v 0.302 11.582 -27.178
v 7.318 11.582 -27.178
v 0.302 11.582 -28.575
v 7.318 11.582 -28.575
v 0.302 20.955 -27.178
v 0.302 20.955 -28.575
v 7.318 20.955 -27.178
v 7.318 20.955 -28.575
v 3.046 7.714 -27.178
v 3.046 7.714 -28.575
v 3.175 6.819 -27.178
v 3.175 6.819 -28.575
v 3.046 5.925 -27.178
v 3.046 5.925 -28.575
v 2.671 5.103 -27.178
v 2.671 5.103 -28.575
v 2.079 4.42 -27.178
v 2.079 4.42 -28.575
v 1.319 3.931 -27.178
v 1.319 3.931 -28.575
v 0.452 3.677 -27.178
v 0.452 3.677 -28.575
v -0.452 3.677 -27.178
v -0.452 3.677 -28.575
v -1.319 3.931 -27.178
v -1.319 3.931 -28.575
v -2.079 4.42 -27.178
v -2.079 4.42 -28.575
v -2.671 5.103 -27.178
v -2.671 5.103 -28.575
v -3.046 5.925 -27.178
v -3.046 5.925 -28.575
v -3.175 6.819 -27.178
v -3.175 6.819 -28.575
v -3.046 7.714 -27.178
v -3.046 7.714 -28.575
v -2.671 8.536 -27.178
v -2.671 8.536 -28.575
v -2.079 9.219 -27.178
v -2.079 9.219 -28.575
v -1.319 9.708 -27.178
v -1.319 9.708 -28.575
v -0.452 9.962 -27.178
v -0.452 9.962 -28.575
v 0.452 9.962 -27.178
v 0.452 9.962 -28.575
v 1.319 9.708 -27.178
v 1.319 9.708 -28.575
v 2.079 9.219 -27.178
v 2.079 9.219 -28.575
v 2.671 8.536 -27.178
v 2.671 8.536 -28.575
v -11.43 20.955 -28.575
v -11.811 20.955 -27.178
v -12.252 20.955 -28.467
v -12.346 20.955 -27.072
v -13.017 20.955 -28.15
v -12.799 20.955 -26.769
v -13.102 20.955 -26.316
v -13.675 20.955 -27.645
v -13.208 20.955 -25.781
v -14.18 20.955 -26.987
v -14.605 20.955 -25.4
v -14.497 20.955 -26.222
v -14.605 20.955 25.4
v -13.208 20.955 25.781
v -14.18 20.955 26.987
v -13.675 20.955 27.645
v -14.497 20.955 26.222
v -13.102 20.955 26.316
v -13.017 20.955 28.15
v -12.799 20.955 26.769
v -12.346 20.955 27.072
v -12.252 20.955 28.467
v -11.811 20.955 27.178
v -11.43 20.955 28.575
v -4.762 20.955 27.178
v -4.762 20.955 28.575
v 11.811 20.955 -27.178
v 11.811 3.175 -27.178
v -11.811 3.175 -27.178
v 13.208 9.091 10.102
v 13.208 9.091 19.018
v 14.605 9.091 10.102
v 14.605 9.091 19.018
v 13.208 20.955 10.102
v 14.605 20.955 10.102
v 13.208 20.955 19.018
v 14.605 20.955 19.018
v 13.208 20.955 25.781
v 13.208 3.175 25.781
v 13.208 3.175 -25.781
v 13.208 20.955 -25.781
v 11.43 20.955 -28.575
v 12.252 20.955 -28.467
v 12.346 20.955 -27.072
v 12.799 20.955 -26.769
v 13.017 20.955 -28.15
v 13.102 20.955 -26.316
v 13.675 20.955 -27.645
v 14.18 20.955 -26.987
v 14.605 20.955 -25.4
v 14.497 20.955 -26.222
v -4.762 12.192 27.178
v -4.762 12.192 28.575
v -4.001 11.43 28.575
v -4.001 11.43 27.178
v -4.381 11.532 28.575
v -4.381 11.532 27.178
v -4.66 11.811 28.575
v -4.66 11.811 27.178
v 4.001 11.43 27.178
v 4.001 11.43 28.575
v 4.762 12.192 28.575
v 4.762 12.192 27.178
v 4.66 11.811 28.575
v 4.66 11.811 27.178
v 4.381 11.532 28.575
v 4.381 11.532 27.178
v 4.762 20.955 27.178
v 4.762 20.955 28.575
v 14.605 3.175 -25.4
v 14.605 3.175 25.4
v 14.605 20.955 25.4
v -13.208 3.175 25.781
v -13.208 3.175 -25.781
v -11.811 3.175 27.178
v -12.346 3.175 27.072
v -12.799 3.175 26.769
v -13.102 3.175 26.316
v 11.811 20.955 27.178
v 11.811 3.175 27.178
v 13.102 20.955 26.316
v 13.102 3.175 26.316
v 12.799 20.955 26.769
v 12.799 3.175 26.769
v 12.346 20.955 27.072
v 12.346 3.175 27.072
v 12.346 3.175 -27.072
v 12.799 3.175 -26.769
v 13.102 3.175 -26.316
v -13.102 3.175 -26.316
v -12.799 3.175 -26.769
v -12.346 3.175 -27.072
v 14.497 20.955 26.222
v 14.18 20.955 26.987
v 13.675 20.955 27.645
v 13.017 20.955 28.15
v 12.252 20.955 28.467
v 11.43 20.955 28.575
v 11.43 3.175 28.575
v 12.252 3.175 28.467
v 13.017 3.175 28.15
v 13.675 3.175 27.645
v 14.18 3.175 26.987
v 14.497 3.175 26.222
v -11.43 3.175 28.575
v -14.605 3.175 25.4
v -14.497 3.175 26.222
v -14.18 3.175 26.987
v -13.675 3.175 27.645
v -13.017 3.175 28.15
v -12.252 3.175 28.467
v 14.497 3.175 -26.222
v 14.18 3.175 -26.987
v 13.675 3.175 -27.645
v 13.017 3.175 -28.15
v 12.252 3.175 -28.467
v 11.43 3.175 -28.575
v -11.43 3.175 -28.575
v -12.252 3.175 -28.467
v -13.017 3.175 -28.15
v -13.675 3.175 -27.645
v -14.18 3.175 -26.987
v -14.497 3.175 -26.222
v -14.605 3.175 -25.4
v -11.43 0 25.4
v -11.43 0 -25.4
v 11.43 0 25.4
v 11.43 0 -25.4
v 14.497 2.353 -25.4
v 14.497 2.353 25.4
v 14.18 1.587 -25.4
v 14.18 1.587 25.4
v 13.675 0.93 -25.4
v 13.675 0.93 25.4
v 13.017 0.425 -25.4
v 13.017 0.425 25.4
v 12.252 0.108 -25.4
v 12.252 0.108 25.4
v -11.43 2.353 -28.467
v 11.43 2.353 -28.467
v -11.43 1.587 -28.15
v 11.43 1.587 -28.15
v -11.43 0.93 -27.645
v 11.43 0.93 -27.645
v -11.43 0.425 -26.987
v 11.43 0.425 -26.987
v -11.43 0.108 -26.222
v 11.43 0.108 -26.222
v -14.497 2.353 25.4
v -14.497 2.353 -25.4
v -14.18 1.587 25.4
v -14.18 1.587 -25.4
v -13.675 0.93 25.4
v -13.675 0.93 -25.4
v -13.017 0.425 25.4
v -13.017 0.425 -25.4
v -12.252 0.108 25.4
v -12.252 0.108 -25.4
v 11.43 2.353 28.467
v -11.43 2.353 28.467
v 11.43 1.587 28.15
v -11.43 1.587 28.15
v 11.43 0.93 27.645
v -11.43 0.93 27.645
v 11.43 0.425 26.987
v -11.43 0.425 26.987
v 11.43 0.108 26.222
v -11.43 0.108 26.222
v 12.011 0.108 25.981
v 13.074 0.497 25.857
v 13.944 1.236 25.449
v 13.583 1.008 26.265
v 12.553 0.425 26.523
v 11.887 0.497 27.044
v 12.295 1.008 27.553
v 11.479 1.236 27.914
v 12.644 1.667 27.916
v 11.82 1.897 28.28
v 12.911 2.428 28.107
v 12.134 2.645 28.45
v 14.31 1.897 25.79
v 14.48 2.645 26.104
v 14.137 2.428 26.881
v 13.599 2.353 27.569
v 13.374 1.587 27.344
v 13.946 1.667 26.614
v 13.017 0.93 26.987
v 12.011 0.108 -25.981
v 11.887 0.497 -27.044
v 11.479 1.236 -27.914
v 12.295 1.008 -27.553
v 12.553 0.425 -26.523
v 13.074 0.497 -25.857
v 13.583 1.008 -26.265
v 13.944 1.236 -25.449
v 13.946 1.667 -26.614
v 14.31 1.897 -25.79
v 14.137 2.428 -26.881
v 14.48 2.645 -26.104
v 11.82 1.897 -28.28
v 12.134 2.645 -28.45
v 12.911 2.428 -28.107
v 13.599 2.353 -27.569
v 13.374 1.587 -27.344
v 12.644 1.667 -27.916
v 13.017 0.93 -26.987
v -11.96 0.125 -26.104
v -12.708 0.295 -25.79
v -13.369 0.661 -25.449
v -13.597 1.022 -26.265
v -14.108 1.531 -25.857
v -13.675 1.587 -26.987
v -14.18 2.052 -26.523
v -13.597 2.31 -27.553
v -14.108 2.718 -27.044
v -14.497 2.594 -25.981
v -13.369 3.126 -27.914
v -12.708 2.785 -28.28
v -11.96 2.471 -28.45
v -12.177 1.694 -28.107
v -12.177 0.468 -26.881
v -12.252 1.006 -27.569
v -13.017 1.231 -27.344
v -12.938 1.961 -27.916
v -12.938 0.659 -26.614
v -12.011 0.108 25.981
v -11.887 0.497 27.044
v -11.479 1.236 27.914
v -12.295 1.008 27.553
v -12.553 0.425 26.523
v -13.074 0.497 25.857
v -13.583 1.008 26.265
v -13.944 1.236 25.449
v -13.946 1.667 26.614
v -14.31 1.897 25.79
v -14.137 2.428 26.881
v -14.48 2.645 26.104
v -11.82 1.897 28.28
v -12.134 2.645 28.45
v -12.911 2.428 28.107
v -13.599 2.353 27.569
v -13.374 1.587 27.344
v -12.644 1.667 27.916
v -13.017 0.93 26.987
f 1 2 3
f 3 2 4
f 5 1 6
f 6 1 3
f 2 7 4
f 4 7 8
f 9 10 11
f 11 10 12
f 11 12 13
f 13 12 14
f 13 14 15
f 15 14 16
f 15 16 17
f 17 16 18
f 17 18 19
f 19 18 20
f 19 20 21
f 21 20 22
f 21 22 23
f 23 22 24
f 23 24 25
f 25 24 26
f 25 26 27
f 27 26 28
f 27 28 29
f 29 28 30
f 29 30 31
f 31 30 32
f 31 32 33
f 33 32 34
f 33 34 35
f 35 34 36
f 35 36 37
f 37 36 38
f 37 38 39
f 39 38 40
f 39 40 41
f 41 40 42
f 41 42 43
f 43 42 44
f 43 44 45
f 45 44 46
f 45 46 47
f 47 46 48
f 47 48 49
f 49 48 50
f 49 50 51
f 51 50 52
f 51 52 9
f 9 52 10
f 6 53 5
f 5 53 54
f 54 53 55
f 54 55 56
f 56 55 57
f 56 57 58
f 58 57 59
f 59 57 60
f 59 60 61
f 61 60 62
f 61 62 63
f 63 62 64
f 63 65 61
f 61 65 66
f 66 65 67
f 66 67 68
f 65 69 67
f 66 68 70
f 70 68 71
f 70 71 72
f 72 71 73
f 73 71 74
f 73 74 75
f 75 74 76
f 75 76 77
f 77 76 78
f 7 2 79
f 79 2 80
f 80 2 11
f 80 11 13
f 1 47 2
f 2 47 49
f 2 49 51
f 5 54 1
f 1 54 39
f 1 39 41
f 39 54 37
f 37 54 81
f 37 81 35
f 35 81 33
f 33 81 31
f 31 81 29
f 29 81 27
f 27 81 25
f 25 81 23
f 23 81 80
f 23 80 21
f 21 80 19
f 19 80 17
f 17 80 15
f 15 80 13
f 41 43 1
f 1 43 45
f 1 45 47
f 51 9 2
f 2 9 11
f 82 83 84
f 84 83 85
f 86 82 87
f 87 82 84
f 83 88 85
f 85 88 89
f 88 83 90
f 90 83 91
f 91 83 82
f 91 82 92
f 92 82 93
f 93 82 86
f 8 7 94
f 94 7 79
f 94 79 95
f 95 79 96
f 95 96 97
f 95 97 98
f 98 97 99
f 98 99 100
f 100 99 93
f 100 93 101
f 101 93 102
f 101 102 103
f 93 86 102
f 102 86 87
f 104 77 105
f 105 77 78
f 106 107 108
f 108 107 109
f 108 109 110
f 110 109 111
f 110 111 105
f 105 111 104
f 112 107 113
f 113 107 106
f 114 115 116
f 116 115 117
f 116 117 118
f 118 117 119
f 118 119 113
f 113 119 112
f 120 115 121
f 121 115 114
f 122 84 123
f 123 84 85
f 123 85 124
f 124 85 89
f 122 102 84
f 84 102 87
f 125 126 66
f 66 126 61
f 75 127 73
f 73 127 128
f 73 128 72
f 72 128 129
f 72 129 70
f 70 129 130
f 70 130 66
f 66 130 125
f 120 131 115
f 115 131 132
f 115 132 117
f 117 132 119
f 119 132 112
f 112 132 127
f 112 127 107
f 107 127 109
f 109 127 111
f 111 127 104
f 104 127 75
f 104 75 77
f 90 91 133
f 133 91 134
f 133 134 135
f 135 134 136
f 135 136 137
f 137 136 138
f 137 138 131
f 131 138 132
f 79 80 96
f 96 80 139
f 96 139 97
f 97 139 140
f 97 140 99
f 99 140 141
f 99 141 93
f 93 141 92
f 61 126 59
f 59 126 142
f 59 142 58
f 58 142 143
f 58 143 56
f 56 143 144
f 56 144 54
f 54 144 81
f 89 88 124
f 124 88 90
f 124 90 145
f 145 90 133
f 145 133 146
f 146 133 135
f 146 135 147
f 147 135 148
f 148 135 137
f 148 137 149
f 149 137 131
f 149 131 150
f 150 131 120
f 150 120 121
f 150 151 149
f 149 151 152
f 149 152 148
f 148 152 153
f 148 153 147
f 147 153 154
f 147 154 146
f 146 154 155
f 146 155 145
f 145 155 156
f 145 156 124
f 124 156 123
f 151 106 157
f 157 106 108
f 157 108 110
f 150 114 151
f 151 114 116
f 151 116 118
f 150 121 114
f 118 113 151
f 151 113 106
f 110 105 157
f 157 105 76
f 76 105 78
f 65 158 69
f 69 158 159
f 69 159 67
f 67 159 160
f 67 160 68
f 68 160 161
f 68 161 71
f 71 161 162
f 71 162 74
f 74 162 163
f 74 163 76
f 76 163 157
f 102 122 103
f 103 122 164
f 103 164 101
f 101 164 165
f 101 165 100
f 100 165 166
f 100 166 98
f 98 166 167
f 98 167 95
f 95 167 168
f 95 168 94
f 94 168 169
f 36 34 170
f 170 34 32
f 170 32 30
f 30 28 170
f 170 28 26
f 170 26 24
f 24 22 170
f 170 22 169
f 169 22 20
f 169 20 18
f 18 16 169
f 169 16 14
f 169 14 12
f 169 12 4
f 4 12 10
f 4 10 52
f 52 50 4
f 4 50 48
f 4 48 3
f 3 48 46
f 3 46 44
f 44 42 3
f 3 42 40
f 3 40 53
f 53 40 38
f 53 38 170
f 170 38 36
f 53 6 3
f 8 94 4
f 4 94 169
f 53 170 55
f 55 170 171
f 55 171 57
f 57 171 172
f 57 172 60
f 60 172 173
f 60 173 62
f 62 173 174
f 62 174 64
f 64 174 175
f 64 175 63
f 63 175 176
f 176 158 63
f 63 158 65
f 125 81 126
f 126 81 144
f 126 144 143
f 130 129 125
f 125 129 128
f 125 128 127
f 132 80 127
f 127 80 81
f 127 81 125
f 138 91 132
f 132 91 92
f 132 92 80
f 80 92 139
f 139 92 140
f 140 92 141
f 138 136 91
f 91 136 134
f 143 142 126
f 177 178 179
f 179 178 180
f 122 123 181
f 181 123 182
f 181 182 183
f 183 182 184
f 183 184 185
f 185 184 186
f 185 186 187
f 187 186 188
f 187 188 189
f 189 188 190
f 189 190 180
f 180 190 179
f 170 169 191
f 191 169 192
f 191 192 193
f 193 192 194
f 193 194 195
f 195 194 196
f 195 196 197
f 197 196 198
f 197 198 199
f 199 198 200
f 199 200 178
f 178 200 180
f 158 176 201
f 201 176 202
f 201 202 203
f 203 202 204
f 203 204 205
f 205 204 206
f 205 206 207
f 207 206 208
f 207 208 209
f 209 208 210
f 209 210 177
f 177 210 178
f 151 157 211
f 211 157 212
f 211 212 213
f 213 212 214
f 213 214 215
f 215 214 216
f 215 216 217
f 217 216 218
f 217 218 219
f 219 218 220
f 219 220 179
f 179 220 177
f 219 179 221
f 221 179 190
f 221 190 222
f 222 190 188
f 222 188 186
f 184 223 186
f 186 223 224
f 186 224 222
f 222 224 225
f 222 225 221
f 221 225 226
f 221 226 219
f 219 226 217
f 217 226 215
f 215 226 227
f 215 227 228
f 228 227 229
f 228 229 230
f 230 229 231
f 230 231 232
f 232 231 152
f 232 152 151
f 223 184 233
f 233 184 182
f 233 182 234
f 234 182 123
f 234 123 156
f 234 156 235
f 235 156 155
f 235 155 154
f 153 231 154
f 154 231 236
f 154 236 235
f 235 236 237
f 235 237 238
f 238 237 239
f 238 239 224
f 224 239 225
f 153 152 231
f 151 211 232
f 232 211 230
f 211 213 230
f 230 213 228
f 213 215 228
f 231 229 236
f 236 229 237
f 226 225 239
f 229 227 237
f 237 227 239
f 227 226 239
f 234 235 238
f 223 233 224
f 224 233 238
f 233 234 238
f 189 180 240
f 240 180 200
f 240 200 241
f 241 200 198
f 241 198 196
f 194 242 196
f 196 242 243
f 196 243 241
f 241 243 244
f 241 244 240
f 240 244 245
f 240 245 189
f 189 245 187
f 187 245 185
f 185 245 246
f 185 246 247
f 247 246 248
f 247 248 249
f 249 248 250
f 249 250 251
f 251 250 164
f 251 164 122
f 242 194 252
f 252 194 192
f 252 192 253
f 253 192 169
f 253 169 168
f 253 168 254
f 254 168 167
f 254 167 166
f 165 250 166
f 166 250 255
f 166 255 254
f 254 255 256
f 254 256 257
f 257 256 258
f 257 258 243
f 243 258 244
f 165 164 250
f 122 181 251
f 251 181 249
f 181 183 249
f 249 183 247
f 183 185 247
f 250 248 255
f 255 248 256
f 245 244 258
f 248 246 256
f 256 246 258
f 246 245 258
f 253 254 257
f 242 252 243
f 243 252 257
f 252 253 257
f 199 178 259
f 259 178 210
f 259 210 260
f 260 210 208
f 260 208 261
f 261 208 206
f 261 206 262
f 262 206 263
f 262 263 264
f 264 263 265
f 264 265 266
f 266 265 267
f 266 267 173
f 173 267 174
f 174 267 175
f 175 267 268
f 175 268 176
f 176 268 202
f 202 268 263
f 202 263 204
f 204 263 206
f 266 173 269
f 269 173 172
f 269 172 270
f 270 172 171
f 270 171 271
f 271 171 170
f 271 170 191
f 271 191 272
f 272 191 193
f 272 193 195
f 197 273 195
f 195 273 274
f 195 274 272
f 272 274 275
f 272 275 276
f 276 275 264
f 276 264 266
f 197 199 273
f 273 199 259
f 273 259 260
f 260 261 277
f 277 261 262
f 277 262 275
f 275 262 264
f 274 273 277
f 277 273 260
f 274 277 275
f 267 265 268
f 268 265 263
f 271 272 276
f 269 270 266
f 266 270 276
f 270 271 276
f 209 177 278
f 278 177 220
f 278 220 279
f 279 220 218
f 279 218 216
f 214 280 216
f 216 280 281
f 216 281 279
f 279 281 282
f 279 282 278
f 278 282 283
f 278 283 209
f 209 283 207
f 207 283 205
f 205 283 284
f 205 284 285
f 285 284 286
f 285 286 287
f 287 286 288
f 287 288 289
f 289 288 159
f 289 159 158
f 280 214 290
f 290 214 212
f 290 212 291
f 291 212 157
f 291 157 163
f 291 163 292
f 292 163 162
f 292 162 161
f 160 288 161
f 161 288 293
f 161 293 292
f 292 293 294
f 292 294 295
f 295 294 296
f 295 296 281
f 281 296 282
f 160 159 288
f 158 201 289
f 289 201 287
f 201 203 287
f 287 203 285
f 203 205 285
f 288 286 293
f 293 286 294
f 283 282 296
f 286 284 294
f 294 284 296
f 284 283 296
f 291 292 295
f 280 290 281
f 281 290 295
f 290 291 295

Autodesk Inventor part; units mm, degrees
ref_plane "YZ Plane" through (0, 0, 0) normal (1, 0, 0) x (0, 1, 0)
ref_plane "XZ Plane" through (0, 0, 0) normal (0, 1, 0) x (-1, 0, 0)
ref_plane "XY Plane" through (0, 0, 0) normal (0, 0, 1) x (1, 0, 0)
sketch "Sketch1" plane through (0, 0, 0) normal (0, 1, 0) x (-1, 0, 0)
  line L0 (14.605, -25.4) -> (14.605, 25.4)
  line L1 (-14.605, -25.4) -> (-14.605, 25.4)
  line L2 (11.43, -28.575) -> (-11.43, -28.575)
  line L3 (11.43, 28.575) -> (-11.43, 28.575)
  arc A0 (11.43, -28.575) -> (14.605, -25.4) centre (11.43, -25.4) ccw
  arc A1 (-14.605, -25.4) -> (-11.43, -28.575) centre (-11.43, -25.4) ccw
  arc A2 (14.605, 25.4) -> (11.43, 28.575) centre (11.43, 25.4) ccw
  arc A3 (-11.43, 28.575) -> (-14.605, 25.4) centre (-11.43, 25.4) ccw
  point P0 (0, 0)
  dimension "d0" = 3.175
  dimension "d1" = 50.8
  dimension "d2" = 3.175
  dimension "d3" = 22.86
  dimension "d4" = 11.43
  dimension "d5" = 25.4
  dimension "d6" = 3.175
  dimension "d7" = 3.175
extrude "Extrusion1" add sketch "Sketch1" along normal blind 3.175
sketch "Sketch2" plane through (0, 3.175, 0) normal (0, 1, 0) x (1, 0, 0)
  line L0 (-13.208, 25.781) -> (-13.208, -25.781)
  line L1 (-14.605, 25.4) -> (-14.605, -25.4) projected
  arc A0 (-13.208, -25.781) -> (-11.811, -27.178) centre (-11.811, -25.781) ccw
  line L2 (-11.811, -27.178) -> (11.811, -27.178)
  line L3 (-11.43, -28.575) -> (11.43, -28.575) projected
  arc A1 (11.811, -27.178) -> (13.208, -25.781) centre (11.811, -25.781) ccw
  line L4 (13.208, -25.781) -> (13.208, 25.781)
  line L5 (14.605, -25.4) -> (14.605, 25.4) projected
  arc A2 (13.208, 25.781) -> (11.811, 27.178) centre (11.811, 25.781) ccw
  line L6 (11.811, 27.178) -> (-11.811, 27.178)
  arc A3 (-11.811, 27.178) -> (-13.208, 25.781) centre (-11.811, 25.781) ccw
  line L7 (-14.605, 25.4) -> (-14.605, -25.4) projected
  line L8 (-14.605, 25.4) -> (-14.605, -25.4)
  arc A4 (-14.605, -25.4) -> (-11.43, -28.575) centre (-11.43, -25.4) ccw projected
  arc A5 (-14.605, -25.4) -> (-11.43, -28.575) centre (-11.43, -25.4) ccw
  line L9 (-11.43, -28.575) -> (11.43, -28.575)
  arc A6 (11.43, -28.575) -> (14.605, -25.4) centre (11.43, -25.4) ccw projected
  arc A7 (11.43, -28.575) -> (14.605, -25.4) centre (11.43, -25.4) ccw
  line L10 (14.605, -25.4) -> (14.605, 25.4)
  arc A8 (14.605, 25.4) -> (11.43, 28.575) centre (11.43, 25.4) ccw projected
  line L11 (11.43, 28.575) -> (-11.43, 28.575)
  line L12 (-11.43, 28.575) -> (11.43, 28.575)
  arc A9 (-11.43, 28.575) -> (-14.605, 25.4) centre (-11.43, 25.4) ccw
  arc A10 (14.605, 25.4) -> (11.43, 28.575) centre (11.43, 25.4) ccw
  point P0 (0, 0)
  dimension "d10" = 1.397
  dimension "d11" = 1.397
  dimension "d12" = 1.397
  dimension "d14" = 1.397
  dimension "d15" = 1.397
  dimension "d16" = 1.397
  dimension "d17" = 1.397
  dimension "d18" = 1.397
extrude "Extrusion2" add sketch "Sketch2" along normal blind 17.78
sketch "Sketch4" plane through (-11.43, 0, 28.575) normal (0, 0, 1) x (1, 0, 0)
  line L0 (15.4305, 11.43) -> (7.4295, 11.43)
  line L1 (6.6675, 12.192) -> (6.6675, 20.955)
  line L2 (6.6675, 20.955) -> (16.1925, 20.955)
  line L3 (16.1925, 20.955) -> (16.1925, 12.192)
  line L4 (0, 20.955) -> (22.86, 20.955) projected
  line L5 (11.43, -2.422) -> (11.43, 18.2718) construction
  line L6 (22.86, 0) -> (22.86, 20.955) construction
  arc A0 (15.4019, 11.4305) -> (16.1925, 12.192) centre (15.4305, 12.192) ccw
  arc A1 (6.669, 12.2395) -> (7.4295, 11.43) centre (7.4295, 12.192) ccw
  point P0 (11.43, 0)
  dimension "d27" = 9.525
  dimension "d28" = 0
  dimension "d29" = 9.525
  dimension "d30" = 11.43
  dimension "d31" = 0.762
  dimension "d32" = 0.762
extrude "Extrusion3" cut sketch "Sketch4" against normal up to surface (1.397 mm away)
sketch "Sketch5" plane through (14.605, 0, 25.4) normal (1, 0, 0) x (0, 0, -1)
  line L0 (50.8, 20.955) -> (0, 20.955) projected
  line L1 (15.298, 9.091) -> (6.382, 9.091)
  line L2 (6.382, 9.091) -> (6.382, 20.955)
  line L3 (6.382, 20.955) -> (15.298, 20.955)
  line L4 (15.298, 20.955) -> (15.298, 9.091)
  line L5 (0, 0) -> (0, 20.955) projected
  line L6 (-3.175, 0) -> (-3.175, 20.955) projected
  point P0 (25.4, 0)
  point P1 (15.298, 20.955)
  dimension "d36" = 8.916
  dimension "d37" = 11.864
  dimension "d48" = 9.557
extrude "Extrusion4" cut sketch "Sketch5" against normal up to surface (1.397 mm away)
sketch "Sketch6" plane through (11.43, 0, -28.575) normal (0, 0, -1) x (-1, 0, 0)
  line L0 (23.241, 20.955) -> (-0.381, 20.955) projected
  line L1 (11.128, 20.955) -> (4.112, 20.955)
  line L2 (4.112, 20.955) -> (4.112, 11.582)
  line L3 (4.112, 11.582) -> (11.128, 11.582)
  line L4 (11.128, 11.582) -> (11.128, 20.955)
  line L5 (0, 0) -> (0, 20.955) projected
  circle A0 centre (11.43, 6.8195) radius 3.175
  line L6 (22.86, 0) -> (22.86, 20.955) projected
  line L7 (-3.175, 0) -> (-3.175, 20.955) projected
  point P0 (11.43, 0)
  dimension "d41" = 7.016
  dimension "d42" = 9.373
  dimension "d45" = 6.35
  dimension "d46" = 4.7625
  dimension "d47" = 11.43
  dimension "d49" = 7.287
extrude "Extrusion5" cut sketch "Sketch6" against normal up to surface (1.397 mm away)
fillet "Fillet1" radius 3.175 8 edges at (13.6751, 0, 27.6451) (14.605, 0, 0) (13.6751, 0, -27.6451) (0, 0, -28.575) (-13.6751, 0, -27.6451) (-14.605, 0, 0) (-13.6751, 0, 27.6451) (0, 0, 28.575)
properties part number "groundStation-top"
